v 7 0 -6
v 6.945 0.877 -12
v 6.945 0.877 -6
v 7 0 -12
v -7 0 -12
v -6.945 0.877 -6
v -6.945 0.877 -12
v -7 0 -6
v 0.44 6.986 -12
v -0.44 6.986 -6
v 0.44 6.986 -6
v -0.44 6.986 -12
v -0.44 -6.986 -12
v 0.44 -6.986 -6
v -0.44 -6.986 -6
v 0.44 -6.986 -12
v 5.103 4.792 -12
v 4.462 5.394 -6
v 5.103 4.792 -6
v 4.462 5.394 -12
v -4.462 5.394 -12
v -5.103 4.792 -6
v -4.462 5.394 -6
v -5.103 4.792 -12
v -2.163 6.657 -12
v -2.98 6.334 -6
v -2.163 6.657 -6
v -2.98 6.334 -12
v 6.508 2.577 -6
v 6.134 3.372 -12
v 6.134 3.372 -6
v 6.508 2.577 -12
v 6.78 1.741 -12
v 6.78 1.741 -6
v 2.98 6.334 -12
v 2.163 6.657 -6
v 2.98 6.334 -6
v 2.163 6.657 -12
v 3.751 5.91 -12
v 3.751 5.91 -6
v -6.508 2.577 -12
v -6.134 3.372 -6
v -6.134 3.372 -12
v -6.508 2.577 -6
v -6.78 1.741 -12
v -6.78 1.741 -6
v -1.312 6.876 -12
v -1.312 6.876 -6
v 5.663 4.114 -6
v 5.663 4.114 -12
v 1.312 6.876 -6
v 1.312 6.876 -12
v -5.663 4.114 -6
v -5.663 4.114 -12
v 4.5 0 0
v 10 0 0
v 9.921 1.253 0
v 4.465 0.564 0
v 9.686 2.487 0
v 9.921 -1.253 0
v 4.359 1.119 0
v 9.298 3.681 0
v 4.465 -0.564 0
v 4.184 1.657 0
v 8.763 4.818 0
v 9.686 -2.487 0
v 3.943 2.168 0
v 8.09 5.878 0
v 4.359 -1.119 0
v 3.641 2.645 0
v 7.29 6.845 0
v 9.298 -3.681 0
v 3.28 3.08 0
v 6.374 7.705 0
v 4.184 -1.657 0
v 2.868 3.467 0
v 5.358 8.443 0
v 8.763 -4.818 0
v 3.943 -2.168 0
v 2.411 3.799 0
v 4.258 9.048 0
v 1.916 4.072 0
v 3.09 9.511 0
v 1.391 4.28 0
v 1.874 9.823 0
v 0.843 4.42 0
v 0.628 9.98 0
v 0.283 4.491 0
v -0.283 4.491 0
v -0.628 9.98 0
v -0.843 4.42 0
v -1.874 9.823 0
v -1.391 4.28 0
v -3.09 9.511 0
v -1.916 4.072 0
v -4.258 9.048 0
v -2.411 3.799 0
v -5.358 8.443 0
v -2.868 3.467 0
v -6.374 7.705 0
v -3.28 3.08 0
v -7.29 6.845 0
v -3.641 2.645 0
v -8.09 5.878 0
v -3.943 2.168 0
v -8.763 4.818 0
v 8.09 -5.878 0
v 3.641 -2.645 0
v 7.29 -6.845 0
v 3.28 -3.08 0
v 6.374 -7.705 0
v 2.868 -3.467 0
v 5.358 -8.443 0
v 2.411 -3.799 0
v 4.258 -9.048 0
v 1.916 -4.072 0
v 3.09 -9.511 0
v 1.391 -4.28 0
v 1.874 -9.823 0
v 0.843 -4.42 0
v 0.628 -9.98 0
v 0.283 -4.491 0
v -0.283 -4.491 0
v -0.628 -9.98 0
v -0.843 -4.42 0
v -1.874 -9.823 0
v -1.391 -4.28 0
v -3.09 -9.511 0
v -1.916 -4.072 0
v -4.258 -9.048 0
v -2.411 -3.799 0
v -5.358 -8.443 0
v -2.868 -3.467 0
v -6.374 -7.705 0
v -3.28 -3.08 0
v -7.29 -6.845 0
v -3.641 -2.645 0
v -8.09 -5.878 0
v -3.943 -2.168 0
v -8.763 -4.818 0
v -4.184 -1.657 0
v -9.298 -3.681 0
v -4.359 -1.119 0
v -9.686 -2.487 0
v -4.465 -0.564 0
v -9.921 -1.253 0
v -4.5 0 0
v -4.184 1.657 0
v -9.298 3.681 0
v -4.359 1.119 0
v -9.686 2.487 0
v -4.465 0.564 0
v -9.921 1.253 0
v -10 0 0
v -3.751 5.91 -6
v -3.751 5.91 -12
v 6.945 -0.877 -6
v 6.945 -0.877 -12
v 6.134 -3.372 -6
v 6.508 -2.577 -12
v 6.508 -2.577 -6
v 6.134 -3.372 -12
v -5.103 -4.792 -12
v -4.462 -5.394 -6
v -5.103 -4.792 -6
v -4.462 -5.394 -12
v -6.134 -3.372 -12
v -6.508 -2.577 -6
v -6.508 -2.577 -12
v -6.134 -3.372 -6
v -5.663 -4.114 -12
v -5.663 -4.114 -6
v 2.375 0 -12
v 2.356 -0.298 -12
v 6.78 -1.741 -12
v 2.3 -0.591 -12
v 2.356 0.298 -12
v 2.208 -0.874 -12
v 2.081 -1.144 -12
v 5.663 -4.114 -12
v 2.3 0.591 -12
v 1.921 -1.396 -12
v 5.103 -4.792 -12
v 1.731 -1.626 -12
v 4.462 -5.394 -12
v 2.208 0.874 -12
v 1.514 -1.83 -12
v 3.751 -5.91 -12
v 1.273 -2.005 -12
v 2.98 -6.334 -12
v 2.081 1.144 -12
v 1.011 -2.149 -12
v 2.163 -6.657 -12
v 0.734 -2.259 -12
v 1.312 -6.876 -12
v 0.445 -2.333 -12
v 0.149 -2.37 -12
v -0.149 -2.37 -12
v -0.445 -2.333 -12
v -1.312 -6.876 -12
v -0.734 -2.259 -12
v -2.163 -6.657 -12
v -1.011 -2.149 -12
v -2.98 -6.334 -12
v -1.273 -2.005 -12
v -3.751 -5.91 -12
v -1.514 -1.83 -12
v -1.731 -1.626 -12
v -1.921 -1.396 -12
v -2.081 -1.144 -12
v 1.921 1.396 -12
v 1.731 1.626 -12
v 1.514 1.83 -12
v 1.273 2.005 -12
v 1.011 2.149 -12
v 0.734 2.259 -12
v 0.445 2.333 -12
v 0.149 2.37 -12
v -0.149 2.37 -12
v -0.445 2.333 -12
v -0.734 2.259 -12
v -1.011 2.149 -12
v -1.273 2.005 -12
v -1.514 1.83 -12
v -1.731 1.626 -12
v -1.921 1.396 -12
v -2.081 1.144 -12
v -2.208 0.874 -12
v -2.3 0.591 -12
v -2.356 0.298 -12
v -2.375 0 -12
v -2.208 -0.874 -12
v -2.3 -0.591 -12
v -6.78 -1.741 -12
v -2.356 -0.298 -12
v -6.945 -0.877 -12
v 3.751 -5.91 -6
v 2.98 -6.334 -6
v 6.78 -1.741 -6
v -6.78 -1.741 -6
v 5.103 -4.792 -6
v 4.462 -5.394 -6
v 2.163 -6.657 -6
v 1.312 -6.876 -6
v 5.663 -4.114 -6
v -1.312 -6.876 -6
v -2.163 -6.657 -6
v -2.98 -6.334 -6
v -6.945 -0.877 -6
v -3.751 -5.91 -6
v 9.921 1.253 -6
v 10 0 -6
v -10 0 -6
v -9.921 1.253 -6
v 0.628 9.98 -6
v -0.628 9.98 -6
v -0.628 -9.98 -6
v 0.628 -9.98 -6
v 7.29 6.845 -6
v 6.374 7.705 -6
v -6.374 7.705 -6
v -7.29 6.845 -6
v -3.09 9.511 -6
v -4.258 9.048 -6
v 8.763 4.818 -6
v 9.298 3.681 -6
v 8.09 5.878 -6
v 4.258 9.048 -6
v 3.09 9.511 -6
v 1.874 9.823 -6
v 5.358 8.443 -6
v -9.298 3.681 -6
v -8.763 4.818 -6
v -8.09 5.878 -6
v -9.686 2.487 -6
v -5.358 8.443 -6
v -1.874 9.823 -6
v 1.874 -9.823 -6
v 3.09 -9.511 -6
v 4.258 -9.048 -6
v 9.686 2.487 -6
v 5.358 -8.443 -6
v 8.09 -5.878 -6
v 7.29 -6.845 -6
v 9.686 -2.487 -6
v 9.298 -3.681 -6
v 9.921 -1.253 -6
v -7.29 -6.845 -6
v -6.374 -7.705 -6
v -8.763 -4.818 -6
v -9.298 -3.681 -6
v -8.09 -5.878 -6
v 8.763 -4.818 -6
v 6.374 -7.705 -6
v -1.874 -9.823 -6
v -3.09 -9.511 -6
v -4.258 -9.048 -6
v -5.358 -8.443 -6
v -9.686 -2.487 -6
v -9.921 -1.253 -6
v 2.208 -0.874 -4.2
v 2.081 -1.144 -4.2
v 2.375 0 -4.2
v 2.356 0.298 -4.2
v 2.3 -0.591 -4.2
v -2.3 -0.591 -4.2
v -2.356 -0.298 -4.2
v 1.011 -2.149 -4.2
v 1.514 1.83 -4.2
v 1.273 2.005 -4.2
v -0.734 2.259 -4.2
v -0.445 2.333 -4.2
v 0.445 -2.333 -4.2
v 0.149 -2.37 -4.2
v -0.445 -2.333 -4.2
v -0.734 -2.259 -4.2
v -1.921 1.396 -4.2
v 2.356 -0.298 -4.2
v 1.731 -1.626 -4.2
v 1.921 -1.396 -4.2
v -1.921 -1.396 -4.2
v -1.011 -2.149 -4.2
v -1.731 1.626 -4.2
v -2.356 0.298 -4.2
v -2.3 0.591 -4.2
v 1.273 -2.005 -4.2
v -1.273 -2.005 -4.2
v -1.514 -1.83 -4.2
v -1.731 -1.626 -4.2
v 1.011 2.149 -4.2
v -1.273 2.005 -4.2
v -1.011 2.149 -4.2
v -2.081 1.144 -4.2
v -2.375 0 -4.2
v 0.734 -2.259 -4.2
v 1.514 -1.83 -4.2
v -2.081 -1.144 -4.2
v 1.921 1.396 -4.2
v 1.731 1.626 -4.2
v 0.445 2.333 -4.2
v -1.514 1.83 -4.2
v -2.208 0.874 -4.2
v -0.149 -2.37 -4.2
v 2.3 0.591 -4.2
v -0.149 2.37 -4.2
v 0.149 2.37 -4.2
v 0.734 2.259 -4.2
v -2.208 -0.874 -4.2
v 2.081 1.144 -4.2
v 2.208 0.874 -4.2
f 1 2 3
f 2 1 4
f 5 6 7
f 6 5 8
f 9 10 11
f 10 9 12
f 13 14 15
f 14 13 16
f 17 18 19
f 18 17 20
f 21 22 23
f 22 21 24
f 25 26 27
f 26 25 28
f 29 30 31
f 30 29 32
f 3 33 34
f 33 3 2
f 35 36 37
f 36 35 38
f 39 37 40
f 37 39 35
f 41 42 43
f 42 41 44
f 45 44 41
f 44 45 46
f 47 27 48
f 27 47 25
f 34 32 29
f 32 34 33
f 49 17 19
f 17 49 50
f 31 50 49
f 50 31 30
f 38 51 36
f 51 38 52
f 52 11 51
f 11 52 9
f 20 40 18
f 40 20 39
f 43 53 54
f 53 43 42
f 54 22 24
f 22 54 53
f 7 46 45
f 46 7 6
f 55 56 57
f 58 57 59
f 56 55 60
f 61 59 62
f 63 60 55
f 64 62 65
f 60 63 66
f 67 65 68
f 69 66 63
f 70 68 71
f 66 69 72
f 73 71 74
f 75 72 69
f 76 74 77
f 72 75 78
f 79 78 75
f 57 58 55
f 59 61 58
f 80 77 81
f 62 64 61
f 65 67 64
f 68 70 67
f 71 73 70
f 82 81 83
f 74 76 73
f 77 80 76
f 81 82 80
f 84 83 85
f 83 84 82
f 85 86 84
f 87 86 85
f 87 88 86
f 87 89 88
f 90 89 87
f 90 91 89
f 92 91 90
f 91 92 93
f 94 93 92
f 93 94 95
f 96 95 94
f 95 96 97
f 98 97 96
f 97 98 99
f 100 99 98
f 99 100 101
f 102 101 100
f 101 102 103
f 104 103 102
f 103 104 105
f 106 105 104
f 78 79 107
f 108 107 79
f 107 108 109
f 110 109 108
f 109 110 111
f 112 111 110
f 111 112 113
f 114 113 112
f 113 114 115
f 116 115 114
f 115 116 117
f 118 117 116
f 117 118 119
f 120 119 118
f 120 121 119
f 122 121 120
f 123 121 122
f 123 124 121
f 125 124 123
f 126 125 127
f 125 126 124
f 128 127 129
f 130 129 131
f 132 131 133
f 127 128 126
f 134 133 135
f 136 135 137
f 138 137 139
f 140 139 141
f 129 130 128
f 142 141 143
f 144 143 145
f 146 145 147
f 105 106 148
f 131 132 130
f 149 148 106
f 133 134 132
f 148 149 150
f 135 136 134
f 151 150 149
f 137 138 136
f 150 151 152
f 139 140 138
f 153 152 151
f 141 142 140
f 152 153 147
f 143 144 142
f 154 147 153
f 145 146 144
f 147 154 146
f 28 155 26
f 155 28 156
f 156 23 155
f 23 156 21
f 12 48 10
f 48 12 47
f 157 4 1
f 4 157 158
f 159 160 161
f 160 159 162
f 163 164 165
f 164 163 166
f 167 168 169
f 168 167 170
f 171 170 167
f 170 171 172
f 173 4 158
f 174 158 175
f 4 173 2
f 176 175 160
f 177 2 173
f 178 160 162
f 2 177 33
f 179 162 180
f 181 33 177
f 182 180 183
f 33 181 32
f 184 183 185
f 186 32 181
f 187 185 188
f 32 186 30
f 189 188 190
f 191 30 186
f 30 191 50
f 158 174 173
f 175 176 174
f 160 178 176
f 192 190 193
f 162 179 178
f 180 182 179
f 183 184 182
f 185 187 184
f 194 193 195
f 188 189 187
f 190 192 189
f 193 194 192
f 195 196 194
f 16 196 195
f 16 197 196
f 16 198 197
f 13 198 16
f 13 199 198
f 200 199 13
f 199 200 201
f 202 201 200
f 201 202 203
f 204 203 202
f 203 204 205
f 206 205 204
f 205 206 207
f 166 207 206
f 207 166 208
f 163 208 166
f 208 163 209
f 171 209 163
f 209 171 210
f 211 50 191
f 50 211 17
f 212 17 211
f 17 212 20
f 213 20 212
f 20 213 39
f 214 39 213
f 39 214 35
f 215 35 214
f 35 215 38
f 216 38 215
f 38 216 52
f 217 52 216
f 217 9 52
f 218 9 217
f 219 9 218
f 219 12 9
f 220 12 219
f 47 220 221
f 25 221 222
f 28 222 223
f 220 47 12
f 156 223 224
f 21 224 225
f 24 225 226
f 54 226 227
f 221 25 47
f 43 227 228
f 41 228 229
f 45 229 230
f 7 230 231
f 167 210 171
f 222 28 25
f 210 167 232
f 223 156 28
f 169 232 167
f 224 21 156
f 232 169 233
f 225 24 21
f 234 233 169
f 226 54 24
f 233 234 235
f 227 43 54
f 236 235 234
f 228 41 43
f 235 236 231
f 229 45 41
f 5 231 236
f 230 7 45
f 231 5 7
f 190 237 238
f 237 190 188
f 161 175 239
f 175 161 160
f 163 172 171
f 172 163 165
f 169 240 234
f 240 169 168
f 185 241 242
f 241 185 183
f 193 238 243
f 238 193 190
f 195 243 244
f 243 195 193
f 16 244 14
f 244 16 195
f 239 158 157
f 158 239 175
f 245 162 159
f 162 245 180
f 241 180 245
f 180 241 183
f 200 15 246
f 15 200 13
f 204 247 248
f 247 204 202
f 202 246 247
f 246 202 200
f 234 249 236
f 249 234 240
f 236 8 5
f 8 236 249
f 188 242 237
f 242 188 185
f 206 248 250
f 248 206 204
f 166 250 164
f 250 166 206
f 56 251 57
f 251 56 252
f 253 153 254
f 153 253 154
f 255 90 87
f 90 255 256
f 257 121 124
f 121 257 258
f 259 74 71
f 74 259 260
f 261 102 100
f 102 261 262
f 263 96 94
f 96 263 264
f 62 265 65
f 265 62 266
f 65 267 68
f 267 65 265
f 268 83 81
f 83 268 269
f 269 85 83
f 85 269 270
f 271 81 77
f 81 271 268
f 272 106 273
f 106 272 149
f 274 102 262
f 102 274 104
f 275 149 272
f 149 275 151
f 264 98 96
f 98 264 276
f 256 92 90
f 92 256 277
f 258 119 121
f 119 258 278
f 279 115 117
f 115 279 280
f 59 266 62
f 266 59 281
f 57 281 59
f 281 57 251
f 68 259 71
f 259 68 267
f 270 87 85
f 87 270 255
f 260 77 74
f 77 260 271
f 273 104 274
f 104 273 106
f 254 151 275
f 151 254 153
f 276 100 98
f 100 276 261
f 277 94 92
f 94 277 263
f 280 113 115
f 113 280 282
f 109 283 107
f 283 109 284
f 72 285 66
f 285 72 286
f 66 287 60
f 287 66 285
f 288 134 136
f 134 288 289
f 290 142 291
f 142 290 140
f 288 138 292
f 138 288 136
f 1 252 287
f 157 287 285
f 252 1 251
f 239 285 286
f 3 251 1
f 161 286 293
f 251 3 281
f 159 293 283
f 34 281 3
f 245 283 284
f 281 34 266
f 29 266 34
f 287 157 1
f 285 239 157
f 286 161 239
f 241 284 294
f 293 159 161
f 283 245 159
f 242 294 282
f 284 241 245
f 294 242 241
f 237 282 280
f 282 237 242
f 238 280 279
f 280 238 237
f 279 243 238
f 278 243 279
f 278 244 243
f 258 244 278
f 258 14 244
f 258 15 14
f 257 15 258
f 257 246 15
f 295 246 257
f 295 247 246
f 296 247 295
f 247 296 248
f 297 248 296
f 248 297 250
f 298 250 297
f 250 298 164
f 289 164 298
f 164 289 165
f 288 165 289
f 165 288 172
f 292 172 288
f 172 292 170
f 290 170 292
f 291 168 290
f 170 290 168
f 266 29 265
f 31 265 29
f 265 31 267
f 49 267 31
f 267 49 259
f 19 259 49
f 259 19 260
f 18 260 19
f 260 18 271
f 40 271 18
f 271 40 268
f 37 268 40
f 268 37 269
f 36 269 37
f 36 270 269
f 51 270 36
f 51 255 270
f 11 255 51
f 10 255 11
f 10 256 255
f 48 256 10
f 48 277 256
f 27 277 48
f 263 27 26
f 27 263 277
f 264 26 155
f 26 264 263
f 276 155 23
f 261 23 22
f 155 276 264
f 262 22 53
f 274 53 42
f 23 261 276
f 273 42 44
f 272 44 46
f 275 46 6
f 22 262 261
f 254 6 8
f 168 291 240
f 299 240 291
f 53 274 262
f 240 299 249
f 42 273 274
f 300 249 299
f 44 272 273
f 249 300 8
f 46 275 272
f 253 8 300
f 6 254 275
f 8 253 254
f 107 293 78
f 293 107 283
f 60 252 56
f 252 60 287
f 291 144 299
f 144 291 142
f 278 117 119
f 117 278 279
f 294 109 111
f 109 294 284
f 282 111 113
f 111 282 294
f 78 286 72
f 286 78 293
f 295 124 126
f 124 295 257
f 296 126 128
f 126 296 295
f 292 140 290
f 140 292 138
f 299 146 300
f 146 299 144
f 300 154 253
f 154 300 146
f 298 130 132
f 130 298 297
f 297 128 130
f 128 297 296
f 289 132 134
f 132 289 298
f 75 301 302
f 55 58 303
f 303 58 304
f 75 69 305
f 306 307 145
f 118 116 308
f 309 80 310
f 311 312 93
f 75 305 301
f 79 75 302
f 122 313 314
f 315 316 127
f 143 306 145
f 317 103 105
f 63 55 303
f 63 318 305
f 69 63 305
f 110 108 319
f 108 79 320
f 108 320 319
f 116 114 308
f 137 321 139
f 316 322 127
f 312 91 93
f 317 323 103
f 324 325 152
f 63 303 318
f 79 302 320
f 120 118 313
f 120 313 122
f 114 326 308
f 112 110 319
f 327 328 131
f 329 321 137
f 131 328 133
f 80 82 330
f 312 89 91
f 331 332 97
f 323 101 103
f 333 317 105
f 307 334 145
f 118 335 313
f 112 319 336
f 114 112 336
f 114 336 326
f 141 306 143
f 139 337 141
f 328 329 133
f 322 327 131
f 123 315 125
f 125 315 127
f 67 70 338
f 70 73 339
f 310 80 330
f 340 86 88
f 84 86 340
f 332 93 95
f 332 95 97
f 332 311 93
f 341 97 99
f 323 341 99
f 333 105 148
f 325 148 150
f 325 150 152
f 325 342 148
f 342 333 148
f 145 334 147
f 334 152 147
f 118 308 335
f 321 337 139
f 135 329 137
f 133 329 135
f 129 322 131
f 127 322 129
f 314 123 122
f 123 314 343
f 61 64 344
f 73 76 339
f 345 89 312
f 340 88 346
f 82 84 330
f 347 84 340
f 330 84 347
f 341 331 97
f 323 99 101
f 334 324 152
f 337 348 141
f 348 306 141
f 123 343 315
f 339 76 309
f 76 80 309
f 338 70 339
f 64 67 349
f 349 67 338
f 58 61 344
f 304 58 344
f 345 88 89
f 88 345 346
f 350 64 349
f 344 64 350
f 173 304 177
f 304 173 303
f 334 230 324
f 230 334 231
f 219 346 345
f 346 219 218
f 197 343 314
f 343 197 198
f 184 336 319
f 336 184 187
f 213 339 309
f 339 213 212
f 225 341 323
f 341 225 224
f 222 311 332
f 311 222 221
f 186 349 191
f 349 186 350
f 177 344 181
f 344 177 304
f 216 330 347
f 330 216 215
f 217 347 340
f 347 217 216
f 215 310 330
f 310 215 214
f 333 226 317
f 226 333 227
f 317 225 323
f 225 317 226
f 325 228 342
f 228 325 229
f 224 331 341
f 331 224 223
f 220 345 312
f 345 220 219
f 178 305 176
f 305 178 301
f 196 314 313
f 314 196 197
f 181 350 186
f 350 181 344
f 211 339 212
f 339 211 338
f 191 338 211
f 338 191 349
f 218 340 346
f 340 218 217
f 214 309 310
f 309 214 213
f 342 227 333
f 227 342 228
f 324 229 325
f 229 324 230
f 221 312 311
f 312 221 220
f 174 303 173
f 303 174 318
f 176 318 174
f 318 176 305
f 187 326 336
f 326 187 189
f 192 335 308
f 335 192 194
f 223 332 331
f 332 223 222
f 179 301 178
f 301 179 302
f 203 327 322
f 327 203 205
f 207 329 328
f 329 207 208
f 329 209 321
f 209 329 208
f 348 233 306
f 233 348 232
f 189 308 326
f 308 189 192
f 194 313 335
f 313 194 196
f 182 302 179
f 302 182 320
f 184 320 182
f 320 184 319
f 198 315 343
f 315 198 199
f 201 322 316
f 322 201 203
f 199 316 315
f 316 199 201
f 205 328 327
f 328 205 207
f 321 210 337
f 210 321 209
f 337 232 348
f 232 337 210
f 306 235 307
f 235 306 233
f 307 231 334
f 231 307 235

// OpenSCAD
$fn = 50;


difference() {
	union() {
		translate(v = [0, 0, -12.0000000000]) {
			cylinder(h = 12, r = 7.0000000000);
		}
		translate(v = [0, 0, -6.0000000000]) {
			cylinder(h = 6, r = 10.0000000000);
		}
	}
	union() {
		translate(v = [0, 0, 0]) {
			rotate(a = [0, 0, 0]) {
				difference() {
					union() {
						#translate(v = [0, 0, -12.0000000000]) {
							cylinder(h = 12, r = 2.2500000000);
						}
						#translate(v = [0, 0, -4.2000000000]) {
							cylinder(h = 4.2000000000, r = 7.0000000000, r1 = 2.3750000000, r2 = 4.5000000000);
						}
						#translate(v = [0, 0, -12.0000000000]) {
							cylinder(h = 12, r = 2.3750000000);
						}
						#translate(v = [0, 0, -12.0000000000]) {
							cylinder(h = 12, r = 2.2500000000);
						}
					}
					union();
				}
			}
		}
	}
}
